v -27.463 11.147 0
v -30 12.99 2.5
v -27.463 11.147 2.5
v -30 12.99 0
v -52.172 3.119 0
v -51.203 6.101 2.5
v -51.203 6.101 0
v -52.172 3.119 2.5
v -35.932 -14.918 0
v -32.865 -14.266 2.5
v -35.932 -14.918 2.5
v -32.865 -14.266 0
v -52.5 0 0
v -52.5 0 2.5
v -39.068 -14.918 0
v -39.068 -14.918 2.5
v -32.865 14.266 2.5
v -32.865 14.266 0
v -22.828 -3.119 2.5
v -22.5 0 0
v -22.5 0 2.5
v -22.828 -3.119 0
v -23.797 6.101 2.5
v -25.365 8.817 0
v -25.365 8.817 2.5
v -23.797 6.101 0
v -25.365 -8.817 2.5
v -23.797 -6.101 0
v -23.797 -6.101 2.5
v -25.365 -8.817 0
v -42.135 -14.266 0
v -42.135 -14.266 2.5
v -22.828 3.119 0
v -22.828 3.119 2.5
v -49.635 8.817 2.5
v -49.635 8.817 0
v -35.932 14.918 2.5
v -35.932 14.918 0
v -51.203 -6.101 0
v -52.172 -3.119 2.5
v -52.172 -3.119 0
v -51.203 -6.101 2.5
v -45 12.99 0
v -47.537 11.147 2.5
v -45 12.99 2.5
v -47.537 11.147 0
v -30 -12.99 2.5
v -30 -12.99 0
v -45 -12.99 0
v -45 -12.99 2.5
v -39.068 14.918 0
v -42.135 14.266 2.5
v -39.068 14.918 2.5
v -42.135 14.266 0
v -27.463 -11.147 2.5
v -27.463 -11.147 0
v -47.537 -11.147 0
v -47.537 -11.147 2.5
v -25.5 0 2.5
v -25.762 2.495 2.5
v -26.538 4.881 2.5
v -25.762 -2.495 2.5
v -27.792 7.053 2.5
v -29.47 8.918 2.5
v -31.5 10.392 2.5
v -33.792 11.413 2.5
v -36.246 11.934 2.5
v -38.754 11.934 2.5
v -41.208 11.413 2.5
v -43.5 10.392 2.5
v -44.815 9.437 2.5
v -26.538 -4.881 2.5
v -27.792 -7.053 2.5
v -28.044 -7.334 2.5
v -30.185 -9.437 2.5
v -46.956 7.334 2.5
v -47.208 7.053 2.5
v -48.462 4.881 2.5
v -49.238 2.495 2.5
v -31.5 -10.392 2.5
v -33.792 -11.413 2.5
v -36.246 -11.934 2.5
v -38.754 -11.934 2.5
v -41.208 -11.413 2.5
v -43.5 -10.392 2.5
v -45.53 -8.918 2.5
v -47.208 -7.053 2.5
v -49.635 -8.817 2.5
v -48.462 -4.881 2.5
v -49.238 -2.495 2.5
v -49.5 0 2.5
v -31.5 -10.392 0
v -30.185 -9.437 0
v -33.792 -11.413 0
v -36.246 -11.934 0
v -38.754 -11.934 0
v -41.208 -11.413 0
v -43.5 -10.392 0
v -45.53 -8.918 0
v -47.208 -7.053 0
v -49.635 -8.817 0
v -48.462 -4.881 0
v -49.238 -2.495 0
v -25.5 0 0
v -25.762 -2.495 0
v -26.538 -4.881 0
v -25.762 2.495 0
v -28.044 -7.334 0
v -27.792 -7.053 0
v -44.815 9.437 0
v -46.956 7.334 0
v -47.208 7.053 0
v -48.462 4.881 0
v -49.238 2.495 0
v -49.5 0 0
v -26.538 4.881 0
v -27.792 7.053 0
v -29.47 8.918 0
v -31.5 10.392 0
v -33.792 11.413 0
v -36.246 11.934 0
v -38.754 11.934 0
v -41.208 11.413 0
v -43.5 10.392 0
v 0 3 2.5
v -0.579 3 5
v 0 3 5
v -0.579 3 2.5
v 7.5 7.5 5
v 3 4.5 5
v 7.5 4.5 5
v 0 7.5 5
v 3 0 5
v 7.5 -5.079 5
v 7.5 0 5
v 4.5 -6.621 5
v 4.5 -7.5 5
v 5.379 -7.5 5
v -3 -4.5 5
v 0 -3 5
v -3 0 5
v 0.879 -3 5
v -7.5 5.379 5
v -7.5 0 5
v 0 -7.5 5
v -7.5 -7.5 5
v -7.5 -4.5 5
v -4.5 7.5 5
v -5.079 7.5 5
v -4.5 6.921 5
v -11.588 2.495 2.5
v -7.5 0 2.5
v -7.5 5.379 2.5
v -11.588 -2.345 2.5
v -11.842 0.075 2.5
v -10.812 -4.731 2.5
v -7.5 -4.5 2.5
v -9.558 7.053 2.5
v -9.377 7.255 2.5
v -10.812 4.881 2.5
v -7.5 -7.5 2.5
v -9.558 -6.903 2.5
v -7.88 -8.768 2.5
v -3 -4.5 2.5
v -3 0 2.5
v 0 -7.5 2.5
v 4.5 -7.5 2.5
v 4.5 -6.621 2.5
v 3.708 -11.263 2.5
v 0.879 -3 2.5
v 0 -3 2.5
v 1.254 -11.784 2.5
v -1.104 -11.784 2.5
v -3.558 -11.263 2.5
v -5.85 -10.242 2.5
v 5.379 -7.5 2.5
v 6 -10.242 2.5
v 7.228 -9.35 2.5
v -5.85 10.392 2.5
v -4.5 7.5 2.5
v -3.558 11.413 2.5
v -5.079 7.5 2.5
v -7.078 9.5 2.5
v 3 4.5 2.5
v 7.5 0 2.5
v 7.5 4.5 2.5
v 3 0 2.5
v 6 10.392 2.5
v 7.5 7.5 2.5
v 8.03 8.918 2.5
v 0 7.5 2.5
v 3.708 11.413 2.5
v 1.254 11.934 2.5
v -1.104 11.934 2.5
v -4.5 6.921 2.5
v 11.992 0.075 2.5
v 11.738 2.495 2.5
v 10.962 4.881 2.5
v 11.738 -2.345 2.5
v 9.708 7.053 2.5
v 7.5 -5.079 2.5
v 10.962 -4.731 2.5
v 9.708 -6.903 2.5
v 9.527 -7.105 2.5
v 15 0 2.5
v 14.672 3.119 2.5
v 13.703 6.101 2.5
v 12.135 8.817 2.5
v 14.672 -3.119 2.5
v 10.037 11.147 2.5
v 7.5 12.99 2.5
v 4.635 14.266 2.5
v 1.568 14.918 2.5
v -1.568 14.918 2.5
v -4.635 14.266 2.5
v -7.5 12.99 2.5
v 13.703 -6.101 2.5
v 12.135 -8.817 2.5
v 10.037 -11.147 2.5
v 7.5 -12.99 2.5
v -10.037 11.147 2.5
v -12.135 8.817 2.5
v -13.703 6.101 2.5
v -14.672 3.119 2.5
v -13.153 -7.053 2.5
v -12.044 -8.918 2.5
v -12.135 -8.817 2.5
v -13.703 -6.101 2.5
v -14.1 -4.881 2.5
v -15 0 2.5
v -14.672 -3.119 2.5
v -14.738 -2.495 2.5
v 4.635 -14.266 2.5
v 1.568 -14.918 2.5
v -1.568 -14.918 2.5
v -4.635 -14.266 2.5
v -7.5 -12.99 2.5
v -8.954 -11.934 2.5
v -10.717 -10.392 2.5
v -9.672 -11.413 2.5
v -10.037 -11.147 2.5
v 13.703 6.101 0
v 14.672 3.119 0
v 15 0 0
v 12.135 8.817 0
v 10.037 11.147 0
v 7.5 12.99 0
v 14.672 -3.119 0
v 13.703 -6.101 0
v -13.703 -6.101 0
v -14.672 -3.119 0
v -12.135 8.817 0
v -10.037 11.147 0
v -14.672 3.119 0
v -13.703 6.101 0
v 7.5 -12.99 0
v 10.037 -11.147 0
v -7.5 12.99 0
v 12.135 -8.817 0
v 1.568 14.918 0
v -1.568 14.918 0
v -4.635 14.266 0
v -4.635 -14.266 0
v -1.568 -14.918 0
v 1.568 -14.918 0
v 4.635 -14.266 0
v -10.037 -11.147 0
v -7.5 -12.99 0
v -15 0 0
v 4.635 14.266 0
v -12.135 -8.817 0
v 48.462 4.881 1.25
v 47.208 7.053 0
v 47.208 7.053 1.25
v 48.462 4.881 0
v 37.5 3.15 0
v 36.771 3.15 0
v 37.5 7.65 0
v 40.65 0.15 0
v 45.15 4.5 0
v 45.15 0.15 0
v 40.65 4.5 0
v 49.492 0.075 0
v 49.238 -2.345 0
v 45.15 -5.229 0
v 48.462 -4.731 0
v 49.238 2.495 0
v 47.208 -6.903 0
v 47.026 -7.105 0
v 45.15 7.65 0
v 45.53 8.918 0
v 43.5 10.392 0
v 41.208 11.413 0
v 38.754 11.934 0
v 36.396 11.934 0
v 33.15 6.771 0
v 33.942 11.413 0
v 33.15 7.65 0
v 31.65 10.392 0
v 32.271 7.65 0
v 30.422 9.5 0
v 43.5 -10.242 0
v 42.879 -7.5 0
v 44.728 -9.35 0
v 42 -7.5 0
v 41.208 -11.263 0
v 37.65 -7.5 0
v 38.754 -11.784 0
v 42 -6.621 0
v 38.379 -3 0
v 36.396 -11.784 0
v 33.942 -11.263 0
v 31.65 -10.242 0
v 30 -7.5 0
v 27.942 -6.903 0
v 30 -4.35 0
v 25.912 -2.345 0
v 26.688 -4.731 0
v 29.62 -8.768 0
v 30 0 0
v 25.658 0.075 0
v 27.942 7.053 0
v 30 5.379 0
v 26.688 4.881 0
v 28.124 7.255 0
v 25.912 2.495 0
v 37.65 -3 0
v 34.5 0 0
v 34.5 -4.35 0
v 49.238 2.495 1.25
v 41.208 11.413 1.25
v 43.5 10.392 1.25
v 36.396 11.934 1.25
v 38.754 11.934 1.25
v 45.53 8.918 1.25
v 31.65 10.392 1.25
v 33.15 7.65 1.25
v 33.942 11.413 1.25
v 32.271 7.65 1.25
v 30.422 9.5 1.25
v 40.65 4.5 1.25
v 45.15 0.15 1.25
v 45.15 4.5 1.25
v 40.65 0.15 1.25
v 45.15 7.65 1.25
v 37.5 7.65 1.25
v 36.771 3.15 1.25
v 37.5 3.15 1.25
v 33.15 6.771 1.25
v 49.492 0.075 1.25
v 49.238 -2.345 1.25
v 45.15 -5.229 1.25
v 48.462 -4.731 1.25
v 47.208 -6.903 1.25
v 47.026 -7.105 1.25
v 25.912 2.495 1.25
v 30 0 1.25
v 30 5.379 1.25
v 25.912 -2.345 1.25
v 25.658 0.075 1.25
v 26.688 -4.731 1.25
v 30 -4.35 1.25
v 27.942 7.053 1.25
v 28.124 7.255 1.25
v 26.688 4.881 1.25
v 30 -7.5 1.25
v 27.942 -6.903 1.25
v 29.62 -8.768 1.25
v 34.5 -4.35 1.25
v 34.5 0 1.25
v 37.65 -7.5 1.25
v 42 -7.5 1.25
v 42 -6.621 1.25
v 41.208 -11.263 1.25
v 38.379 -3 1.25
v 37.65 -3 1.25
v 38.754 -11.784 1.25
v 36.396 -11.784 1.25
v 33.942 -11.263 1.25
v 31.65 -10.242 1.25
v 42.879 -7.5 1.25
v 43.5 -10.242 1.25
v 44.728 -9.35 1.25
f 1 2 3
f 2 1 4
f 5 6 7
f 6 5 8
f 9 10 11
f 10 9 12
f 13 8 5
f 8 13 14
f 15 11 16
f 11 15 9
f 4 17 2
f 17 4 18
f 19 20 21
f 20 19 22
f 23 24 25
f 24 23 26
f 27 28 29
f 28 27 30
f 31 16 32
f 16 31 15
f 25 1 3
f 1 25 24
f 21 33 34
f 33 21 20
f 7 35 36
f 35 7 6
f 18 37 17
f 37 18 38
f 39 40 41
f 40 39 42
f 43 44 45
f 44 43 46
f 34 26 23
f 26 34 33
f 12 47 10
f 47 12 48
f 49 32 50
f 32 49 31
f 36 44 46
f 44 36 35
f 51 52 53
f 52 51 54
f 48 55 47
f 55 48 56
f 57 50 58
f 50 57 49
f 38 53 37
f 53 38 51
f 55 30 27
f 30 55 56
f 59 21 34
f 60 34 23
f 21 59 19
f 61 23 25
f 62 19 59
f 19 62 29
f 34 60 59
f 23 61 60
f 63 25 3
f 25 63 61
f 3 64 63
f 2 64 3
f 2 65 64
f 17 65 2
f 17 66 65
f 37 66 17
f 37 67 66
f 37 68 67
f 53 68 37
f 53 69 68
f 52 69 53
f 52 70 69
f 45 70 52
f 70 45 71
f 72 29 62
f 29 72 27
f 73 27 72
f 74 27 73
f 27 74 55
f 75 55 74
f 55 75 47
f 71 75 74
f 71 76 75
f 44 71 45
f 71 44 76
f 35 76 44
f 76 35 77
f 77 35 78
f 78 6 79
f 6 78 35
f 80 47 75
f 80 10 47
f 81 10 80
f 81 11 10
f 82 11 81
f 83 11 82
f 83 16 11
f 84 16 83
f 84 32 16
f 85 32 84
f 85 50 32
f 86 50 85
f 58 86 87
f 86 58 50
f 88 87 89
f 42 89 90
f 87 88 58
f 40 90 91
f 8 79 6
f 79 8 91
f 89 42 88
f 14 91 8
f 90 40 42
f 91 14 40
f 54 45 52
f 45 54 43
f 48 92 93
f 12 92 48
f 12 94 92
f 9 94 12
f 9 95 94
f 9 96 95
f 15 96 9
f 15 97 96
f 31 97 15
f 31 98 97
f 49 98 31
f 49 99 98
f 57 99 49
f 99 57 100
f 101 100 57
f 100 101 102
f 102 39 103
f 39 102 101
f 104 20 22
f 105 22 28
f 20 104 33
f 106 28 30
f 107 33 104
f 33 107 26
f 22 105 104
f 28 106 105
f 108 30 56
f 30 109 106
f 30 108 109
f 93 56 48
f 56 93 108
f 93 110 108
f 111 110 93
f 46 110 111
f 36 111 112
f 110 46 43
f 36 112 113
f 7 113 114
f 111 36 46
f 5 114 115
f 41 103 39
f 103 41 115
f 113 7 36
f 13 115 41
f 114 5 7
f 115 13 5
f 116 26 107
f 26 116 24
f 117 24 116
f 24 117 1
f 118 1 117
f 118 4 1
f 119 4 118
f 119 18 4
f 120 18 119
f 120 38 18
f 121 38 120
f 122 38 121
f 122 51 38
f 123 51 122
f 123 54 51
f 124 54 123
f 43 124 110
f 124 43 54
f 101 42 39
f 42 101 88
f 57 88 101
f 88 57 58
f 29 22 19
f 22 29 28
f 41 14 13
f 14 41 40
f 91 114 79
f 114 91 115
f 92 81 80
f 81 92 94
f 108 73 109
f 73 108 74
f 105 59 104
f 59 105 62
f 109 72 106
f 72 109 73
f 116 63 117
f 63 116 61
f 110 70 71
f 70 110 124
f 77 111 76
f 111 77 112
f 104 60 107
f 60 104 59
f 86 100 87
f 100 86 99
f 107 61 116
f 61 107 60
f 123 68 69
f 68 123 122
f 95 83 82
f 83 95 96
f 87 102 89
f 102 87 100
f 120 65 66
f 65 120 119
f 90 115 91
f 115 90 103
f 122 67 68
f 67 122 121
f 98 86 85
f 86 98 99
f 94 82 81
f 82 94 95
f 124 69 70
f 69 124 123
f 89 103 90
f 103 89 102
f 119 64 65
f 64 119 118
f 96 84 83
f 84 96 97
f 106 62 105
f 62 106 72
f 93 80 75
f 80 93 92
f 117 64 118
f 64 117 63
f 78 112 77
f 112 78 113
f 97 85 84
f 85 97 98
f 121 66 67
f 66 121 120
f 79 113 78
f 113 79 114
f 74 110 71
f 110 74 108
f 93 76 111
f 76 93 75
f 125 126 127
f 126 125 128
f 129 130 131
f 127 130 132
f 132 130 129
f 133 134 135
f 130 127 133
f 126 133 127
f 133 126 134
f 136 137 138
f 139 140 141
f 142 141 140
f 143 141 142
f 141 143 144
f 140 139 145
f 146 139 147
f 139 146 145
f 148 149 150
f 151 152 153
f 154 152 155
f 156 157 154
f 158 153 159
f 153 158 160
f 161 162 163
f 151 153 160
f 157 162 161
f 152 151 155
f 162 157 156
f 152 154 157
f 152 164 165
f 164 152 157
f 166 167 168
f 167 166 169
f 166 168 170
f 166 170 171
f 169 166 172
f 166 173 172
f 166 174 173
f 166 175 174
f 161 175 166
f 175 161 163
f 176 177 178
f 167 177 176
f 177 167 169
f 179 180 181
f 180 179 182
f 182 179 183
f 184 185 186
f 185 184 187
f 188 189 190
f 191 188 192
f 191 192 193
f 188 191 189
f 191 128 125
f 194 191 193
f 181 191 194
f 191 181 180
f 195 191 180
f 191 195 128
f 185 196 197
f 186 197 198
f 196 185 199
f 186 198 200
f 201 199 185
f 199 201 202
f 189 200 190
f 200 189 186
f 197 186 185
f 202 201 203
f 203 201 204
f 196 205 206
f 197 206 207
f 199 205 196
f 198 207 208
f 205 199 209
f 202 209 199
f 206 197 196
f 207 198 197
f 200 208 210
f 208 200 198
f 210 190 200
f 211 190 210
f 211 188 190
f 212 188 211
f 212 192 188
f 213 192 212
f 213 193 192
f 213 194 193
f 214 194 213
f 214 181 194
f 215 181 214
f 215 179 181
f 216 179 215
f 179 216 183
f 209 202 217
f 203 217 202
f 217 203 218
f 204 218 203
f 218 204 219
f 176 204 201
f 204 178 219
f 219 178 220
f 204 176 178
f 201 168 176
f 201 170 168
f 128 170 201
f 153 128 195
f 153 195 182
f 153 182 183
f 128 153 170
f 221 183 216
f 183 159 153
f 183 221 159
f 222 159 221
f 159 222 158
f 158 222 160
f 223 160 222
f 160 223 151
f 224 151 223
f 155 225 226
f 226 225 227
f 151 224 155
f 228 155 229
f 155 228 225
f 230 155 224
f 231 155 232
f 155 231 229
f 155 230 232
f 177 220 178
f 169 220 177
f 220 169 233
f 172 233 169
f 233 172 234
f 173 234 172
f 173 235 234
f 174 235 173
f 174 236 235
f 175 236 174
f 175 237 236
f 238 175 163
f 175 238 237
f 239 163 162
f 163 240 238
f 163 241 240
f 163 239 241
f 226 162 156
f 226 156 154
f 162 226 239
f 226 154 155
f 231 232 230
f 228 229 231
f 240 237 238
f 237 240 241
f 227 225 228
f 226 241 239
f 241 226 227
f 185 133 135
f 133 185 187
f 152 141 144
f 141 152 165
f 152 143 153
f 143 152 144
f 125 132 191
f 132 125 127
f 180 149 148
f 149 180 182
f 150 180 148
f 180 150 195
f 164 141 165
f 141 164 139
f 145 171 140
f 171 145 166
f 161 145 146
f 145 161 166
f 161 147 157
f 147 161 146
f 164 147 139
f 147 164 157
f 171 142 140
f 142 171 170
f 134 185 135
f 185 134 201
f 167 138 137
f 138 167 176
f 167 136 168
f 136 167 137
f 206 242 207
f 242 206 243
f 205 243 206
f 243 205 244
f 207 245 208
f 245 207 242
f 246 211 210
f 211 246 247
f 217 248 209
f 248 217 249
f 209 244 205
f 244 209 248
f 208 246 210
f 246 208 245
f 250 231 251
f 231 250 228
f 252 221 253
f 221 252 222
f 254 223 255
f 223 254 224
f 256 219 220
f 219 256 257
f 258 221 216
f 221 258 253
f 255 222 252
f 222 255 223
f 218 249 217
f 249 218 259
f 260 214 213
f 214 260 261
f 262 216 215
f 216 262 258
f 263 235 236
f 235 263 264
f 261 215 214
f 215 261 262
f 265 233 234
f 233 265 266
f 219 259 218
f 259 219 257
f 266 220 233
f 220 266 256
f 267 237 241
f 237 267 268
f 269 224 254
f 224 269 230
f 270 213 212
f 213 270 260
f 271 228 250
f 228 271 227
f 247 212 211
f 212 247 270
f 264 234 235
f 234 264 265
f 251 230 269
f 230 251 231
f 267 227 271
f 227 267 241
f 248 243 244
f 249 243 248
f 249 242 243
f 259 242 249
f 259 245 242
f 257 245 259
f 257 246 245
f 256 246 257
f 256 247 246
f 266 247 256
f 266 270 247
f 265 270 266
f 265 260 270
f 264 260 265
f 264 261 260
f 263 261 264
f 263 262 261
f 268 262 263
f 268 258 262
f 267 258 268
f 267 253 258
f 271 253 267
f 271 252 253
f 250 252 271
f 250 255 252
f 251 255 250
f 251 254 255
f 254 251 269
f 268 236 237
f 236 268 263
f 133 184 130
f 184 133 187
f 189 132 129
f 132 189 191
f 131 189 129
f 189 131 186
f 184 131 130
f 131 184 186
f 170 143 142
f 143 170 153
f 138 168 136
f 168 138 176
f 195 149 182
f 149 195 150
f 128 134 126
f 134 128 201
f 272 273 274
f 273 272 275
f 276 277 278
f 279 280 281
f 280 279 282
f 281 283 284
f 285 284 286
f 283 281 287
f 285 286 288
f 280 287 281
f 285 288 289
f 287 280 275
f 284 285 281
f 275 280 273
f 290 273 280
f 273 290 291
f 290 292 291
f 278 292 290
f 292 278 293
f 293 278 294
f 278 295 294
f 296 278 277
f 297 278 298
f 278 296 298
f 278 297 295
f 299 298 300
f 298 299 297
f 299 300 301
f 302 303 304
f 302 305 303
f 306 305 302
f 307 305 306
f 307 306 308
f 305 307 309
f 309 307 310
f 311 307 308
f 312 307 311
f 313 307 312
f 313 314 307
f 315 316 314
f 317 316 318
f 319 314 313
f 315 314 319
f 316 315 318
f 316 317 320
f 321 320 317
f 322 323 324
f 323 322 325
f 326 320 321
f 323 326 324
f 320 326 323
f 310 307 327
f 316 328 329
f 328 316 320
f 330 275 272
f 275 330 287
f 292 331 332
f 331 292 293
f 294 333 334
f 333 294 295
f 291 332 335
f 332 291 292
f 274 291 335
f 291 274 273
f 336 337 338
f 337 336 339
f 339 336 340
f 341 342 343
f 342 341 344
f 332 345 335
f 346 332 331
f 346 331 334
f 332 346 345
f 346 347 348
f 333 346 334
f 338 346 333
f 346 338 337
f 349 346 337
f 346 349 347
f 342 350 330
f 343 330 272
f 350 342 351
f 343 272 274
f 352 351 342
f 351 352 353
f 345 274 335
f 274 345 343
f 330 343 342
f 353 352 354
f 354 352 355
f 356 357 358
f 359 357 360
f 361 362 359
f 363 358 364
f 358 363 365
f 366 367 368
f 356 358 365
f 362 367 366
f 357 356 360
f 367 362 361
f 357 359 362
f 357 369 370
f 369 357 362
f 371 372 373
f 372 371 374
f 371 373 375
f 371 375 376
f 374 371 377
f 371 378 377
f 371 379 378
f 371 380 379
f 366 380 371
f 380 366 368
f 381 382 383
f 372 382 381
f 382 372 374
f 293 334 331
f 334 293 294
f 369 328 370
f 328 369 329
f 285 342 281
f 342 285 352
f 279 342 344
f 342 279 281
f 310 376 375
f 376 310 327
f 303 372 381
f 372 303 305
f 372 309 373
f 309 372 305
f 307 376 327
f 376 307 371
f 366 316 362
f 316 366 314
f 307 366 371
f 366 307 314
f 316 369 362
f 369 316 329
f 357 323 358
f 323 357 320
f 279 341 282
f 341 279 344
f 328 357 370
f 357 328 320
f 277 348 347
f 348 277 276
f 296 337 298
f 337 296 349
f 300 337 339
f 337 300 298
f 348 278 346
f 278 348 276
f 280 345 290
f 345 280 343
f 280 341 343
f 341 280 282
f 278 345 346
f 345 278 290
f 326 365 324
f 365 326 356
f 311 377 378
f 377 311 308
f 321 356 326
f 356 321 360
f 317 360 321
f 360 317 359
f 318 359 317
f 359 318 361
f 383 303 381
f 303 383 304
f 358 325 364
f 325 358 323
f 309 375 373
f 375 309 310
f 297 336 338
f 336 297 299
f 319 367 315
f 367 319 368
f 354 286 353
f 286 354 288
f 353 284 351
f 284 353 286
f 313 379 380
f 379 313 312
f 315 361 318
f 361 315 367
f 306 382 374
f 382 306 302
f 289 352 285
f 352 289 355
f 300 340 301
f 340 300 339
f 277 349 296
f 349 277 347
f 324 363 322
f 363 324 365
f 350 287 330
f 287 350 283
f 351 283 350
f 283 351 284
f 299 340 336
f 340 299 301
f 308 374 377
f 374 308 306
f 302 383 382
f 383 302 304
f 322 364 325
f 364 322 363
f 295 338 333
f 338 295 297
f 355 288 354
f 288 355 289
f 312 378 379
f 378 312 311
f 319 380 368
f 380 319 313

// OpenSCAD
union() {
	translate(v = [0, 0, 2.5]) {
		difference() {
			union() {
				translate(v = [0, 0, -2.5]) {
					cylinder(h = 2.5, r = 15.0);
				}
				cube(size = [3.0, 7.5, 2.5]);
				translate(v = [0, 4.5, 0]) {
					cube(size = [7.5, 3.0, 2.5]);
				}
				rotate(a = [0, 0, 90]) {
					union() {
						cube(size = [3.0, 7.5, 2.5]);
						translate(v = [0, 4.5, 0]) {
							cube(size = [7.5, 3.0, 2.5]);
						}
					}
				}
				rotate(a = [0, 0, 180]) {
					union() {
						cube(size = [3.0, 7.5, 2.5]);
						translate(v = [0, 4.5, 0]) {
							cube(size = [7.5, 3.0, 2.5]);
						}
					}
				}
				rotate(a = [0, 0, 270]) {
					union() {
						cube(size = [3.0, 7.5, 2.5]);
						translate(v = [0, 4.5, 0]) {
							cube(size = [7.5, 3.0, 2.5]);
						}
					}
				}
			}
			minkowski() {
				union() {
					difference() {
						cylinder(h = 2.5, r = 15.0);
						cylinder(h = 2.5, r = 12.0);
					}
					rotate(a = [0, 0, -45]) {
						translate(v = [-13.5, 0, 0]) {
							translate(v = [0, -1.5, 0]) {
								cube(size = [27.0, 3.0, 2.5]);
							}
						}
					}
				}
				cube(size = [0.15, 0.15, 0.15]);
			}
		}
	}
	translate(v = [-37.5, 0, 0]) {
		union() {
			difference() {
				cylinder(h = 2.5, r = 15.0);
				cylinder(h = 2.5, r = 12.0);
			}
			rotate(a = [0, 0, -45]) {
				translate(v = [-13.5, 0, 0]) {
					translate(v = [0, -1.5, 0]) {
						cube(size = [27.0, 3.0, 2.5]);
					}
				}
			}
		}
	}
	translate(v = [37.5, 0, 0]) {
		difference() {
			cylinder(h = 1.25, r = 12.0);
			minkowski() {
				union() {
					cube(size = [3.0, 7.5, 2.5]);
					translate(v = [0, 4.5, 0]) {
						cube(size = [7.5, 3.0, 2.5]);
					}
					rotate(a = [0, 0, 90]) {
						union() {
							cube(size = [3.0, 7.5, 2.5]);
							translate(v = [0, 4.5, 0]) {
								cube(size = [7.5, 3.0, 2.5]);
							}
						}
					}
					rotate(a = [0, 0, 180]) {
						union() {
							cube(size = [3.0, 7.5, 2.5]);
							translate(v = [0, 4.5, 0]) {
								cube(size = [7.5, 3.0, 2.5]);
							}
						}
					}
					rotate(a = [0, 0, 270]) {
						union() {
							cube(size = [3.0, 7.5, 2.5]);
							translate(v = [0, 4.5, 0]) {
								cube(size = [7.5, 3.0, 2.5]);
							}
						}
					}
				}
				cube(size = [0.15, 0.15, 0.15]);
			}
			minkowski() {
				union() {
					difference() {
						cylinder(h = 2.5, r = 15.0);
						cylinder(h = 2.5, r = 12.0);
					}
					rotate(a = [0, 0, -45]) {
						translate(v = [-13.5, 0, 0]) {
							translate(v = [0, -1.5, 0]) {
								cube(size = [27.0, 3.0, 2.5]);
							}
						}
					}
				}
				cube(size = [0.15, 0.15, 0.15]);
			}
		}
	}
}
